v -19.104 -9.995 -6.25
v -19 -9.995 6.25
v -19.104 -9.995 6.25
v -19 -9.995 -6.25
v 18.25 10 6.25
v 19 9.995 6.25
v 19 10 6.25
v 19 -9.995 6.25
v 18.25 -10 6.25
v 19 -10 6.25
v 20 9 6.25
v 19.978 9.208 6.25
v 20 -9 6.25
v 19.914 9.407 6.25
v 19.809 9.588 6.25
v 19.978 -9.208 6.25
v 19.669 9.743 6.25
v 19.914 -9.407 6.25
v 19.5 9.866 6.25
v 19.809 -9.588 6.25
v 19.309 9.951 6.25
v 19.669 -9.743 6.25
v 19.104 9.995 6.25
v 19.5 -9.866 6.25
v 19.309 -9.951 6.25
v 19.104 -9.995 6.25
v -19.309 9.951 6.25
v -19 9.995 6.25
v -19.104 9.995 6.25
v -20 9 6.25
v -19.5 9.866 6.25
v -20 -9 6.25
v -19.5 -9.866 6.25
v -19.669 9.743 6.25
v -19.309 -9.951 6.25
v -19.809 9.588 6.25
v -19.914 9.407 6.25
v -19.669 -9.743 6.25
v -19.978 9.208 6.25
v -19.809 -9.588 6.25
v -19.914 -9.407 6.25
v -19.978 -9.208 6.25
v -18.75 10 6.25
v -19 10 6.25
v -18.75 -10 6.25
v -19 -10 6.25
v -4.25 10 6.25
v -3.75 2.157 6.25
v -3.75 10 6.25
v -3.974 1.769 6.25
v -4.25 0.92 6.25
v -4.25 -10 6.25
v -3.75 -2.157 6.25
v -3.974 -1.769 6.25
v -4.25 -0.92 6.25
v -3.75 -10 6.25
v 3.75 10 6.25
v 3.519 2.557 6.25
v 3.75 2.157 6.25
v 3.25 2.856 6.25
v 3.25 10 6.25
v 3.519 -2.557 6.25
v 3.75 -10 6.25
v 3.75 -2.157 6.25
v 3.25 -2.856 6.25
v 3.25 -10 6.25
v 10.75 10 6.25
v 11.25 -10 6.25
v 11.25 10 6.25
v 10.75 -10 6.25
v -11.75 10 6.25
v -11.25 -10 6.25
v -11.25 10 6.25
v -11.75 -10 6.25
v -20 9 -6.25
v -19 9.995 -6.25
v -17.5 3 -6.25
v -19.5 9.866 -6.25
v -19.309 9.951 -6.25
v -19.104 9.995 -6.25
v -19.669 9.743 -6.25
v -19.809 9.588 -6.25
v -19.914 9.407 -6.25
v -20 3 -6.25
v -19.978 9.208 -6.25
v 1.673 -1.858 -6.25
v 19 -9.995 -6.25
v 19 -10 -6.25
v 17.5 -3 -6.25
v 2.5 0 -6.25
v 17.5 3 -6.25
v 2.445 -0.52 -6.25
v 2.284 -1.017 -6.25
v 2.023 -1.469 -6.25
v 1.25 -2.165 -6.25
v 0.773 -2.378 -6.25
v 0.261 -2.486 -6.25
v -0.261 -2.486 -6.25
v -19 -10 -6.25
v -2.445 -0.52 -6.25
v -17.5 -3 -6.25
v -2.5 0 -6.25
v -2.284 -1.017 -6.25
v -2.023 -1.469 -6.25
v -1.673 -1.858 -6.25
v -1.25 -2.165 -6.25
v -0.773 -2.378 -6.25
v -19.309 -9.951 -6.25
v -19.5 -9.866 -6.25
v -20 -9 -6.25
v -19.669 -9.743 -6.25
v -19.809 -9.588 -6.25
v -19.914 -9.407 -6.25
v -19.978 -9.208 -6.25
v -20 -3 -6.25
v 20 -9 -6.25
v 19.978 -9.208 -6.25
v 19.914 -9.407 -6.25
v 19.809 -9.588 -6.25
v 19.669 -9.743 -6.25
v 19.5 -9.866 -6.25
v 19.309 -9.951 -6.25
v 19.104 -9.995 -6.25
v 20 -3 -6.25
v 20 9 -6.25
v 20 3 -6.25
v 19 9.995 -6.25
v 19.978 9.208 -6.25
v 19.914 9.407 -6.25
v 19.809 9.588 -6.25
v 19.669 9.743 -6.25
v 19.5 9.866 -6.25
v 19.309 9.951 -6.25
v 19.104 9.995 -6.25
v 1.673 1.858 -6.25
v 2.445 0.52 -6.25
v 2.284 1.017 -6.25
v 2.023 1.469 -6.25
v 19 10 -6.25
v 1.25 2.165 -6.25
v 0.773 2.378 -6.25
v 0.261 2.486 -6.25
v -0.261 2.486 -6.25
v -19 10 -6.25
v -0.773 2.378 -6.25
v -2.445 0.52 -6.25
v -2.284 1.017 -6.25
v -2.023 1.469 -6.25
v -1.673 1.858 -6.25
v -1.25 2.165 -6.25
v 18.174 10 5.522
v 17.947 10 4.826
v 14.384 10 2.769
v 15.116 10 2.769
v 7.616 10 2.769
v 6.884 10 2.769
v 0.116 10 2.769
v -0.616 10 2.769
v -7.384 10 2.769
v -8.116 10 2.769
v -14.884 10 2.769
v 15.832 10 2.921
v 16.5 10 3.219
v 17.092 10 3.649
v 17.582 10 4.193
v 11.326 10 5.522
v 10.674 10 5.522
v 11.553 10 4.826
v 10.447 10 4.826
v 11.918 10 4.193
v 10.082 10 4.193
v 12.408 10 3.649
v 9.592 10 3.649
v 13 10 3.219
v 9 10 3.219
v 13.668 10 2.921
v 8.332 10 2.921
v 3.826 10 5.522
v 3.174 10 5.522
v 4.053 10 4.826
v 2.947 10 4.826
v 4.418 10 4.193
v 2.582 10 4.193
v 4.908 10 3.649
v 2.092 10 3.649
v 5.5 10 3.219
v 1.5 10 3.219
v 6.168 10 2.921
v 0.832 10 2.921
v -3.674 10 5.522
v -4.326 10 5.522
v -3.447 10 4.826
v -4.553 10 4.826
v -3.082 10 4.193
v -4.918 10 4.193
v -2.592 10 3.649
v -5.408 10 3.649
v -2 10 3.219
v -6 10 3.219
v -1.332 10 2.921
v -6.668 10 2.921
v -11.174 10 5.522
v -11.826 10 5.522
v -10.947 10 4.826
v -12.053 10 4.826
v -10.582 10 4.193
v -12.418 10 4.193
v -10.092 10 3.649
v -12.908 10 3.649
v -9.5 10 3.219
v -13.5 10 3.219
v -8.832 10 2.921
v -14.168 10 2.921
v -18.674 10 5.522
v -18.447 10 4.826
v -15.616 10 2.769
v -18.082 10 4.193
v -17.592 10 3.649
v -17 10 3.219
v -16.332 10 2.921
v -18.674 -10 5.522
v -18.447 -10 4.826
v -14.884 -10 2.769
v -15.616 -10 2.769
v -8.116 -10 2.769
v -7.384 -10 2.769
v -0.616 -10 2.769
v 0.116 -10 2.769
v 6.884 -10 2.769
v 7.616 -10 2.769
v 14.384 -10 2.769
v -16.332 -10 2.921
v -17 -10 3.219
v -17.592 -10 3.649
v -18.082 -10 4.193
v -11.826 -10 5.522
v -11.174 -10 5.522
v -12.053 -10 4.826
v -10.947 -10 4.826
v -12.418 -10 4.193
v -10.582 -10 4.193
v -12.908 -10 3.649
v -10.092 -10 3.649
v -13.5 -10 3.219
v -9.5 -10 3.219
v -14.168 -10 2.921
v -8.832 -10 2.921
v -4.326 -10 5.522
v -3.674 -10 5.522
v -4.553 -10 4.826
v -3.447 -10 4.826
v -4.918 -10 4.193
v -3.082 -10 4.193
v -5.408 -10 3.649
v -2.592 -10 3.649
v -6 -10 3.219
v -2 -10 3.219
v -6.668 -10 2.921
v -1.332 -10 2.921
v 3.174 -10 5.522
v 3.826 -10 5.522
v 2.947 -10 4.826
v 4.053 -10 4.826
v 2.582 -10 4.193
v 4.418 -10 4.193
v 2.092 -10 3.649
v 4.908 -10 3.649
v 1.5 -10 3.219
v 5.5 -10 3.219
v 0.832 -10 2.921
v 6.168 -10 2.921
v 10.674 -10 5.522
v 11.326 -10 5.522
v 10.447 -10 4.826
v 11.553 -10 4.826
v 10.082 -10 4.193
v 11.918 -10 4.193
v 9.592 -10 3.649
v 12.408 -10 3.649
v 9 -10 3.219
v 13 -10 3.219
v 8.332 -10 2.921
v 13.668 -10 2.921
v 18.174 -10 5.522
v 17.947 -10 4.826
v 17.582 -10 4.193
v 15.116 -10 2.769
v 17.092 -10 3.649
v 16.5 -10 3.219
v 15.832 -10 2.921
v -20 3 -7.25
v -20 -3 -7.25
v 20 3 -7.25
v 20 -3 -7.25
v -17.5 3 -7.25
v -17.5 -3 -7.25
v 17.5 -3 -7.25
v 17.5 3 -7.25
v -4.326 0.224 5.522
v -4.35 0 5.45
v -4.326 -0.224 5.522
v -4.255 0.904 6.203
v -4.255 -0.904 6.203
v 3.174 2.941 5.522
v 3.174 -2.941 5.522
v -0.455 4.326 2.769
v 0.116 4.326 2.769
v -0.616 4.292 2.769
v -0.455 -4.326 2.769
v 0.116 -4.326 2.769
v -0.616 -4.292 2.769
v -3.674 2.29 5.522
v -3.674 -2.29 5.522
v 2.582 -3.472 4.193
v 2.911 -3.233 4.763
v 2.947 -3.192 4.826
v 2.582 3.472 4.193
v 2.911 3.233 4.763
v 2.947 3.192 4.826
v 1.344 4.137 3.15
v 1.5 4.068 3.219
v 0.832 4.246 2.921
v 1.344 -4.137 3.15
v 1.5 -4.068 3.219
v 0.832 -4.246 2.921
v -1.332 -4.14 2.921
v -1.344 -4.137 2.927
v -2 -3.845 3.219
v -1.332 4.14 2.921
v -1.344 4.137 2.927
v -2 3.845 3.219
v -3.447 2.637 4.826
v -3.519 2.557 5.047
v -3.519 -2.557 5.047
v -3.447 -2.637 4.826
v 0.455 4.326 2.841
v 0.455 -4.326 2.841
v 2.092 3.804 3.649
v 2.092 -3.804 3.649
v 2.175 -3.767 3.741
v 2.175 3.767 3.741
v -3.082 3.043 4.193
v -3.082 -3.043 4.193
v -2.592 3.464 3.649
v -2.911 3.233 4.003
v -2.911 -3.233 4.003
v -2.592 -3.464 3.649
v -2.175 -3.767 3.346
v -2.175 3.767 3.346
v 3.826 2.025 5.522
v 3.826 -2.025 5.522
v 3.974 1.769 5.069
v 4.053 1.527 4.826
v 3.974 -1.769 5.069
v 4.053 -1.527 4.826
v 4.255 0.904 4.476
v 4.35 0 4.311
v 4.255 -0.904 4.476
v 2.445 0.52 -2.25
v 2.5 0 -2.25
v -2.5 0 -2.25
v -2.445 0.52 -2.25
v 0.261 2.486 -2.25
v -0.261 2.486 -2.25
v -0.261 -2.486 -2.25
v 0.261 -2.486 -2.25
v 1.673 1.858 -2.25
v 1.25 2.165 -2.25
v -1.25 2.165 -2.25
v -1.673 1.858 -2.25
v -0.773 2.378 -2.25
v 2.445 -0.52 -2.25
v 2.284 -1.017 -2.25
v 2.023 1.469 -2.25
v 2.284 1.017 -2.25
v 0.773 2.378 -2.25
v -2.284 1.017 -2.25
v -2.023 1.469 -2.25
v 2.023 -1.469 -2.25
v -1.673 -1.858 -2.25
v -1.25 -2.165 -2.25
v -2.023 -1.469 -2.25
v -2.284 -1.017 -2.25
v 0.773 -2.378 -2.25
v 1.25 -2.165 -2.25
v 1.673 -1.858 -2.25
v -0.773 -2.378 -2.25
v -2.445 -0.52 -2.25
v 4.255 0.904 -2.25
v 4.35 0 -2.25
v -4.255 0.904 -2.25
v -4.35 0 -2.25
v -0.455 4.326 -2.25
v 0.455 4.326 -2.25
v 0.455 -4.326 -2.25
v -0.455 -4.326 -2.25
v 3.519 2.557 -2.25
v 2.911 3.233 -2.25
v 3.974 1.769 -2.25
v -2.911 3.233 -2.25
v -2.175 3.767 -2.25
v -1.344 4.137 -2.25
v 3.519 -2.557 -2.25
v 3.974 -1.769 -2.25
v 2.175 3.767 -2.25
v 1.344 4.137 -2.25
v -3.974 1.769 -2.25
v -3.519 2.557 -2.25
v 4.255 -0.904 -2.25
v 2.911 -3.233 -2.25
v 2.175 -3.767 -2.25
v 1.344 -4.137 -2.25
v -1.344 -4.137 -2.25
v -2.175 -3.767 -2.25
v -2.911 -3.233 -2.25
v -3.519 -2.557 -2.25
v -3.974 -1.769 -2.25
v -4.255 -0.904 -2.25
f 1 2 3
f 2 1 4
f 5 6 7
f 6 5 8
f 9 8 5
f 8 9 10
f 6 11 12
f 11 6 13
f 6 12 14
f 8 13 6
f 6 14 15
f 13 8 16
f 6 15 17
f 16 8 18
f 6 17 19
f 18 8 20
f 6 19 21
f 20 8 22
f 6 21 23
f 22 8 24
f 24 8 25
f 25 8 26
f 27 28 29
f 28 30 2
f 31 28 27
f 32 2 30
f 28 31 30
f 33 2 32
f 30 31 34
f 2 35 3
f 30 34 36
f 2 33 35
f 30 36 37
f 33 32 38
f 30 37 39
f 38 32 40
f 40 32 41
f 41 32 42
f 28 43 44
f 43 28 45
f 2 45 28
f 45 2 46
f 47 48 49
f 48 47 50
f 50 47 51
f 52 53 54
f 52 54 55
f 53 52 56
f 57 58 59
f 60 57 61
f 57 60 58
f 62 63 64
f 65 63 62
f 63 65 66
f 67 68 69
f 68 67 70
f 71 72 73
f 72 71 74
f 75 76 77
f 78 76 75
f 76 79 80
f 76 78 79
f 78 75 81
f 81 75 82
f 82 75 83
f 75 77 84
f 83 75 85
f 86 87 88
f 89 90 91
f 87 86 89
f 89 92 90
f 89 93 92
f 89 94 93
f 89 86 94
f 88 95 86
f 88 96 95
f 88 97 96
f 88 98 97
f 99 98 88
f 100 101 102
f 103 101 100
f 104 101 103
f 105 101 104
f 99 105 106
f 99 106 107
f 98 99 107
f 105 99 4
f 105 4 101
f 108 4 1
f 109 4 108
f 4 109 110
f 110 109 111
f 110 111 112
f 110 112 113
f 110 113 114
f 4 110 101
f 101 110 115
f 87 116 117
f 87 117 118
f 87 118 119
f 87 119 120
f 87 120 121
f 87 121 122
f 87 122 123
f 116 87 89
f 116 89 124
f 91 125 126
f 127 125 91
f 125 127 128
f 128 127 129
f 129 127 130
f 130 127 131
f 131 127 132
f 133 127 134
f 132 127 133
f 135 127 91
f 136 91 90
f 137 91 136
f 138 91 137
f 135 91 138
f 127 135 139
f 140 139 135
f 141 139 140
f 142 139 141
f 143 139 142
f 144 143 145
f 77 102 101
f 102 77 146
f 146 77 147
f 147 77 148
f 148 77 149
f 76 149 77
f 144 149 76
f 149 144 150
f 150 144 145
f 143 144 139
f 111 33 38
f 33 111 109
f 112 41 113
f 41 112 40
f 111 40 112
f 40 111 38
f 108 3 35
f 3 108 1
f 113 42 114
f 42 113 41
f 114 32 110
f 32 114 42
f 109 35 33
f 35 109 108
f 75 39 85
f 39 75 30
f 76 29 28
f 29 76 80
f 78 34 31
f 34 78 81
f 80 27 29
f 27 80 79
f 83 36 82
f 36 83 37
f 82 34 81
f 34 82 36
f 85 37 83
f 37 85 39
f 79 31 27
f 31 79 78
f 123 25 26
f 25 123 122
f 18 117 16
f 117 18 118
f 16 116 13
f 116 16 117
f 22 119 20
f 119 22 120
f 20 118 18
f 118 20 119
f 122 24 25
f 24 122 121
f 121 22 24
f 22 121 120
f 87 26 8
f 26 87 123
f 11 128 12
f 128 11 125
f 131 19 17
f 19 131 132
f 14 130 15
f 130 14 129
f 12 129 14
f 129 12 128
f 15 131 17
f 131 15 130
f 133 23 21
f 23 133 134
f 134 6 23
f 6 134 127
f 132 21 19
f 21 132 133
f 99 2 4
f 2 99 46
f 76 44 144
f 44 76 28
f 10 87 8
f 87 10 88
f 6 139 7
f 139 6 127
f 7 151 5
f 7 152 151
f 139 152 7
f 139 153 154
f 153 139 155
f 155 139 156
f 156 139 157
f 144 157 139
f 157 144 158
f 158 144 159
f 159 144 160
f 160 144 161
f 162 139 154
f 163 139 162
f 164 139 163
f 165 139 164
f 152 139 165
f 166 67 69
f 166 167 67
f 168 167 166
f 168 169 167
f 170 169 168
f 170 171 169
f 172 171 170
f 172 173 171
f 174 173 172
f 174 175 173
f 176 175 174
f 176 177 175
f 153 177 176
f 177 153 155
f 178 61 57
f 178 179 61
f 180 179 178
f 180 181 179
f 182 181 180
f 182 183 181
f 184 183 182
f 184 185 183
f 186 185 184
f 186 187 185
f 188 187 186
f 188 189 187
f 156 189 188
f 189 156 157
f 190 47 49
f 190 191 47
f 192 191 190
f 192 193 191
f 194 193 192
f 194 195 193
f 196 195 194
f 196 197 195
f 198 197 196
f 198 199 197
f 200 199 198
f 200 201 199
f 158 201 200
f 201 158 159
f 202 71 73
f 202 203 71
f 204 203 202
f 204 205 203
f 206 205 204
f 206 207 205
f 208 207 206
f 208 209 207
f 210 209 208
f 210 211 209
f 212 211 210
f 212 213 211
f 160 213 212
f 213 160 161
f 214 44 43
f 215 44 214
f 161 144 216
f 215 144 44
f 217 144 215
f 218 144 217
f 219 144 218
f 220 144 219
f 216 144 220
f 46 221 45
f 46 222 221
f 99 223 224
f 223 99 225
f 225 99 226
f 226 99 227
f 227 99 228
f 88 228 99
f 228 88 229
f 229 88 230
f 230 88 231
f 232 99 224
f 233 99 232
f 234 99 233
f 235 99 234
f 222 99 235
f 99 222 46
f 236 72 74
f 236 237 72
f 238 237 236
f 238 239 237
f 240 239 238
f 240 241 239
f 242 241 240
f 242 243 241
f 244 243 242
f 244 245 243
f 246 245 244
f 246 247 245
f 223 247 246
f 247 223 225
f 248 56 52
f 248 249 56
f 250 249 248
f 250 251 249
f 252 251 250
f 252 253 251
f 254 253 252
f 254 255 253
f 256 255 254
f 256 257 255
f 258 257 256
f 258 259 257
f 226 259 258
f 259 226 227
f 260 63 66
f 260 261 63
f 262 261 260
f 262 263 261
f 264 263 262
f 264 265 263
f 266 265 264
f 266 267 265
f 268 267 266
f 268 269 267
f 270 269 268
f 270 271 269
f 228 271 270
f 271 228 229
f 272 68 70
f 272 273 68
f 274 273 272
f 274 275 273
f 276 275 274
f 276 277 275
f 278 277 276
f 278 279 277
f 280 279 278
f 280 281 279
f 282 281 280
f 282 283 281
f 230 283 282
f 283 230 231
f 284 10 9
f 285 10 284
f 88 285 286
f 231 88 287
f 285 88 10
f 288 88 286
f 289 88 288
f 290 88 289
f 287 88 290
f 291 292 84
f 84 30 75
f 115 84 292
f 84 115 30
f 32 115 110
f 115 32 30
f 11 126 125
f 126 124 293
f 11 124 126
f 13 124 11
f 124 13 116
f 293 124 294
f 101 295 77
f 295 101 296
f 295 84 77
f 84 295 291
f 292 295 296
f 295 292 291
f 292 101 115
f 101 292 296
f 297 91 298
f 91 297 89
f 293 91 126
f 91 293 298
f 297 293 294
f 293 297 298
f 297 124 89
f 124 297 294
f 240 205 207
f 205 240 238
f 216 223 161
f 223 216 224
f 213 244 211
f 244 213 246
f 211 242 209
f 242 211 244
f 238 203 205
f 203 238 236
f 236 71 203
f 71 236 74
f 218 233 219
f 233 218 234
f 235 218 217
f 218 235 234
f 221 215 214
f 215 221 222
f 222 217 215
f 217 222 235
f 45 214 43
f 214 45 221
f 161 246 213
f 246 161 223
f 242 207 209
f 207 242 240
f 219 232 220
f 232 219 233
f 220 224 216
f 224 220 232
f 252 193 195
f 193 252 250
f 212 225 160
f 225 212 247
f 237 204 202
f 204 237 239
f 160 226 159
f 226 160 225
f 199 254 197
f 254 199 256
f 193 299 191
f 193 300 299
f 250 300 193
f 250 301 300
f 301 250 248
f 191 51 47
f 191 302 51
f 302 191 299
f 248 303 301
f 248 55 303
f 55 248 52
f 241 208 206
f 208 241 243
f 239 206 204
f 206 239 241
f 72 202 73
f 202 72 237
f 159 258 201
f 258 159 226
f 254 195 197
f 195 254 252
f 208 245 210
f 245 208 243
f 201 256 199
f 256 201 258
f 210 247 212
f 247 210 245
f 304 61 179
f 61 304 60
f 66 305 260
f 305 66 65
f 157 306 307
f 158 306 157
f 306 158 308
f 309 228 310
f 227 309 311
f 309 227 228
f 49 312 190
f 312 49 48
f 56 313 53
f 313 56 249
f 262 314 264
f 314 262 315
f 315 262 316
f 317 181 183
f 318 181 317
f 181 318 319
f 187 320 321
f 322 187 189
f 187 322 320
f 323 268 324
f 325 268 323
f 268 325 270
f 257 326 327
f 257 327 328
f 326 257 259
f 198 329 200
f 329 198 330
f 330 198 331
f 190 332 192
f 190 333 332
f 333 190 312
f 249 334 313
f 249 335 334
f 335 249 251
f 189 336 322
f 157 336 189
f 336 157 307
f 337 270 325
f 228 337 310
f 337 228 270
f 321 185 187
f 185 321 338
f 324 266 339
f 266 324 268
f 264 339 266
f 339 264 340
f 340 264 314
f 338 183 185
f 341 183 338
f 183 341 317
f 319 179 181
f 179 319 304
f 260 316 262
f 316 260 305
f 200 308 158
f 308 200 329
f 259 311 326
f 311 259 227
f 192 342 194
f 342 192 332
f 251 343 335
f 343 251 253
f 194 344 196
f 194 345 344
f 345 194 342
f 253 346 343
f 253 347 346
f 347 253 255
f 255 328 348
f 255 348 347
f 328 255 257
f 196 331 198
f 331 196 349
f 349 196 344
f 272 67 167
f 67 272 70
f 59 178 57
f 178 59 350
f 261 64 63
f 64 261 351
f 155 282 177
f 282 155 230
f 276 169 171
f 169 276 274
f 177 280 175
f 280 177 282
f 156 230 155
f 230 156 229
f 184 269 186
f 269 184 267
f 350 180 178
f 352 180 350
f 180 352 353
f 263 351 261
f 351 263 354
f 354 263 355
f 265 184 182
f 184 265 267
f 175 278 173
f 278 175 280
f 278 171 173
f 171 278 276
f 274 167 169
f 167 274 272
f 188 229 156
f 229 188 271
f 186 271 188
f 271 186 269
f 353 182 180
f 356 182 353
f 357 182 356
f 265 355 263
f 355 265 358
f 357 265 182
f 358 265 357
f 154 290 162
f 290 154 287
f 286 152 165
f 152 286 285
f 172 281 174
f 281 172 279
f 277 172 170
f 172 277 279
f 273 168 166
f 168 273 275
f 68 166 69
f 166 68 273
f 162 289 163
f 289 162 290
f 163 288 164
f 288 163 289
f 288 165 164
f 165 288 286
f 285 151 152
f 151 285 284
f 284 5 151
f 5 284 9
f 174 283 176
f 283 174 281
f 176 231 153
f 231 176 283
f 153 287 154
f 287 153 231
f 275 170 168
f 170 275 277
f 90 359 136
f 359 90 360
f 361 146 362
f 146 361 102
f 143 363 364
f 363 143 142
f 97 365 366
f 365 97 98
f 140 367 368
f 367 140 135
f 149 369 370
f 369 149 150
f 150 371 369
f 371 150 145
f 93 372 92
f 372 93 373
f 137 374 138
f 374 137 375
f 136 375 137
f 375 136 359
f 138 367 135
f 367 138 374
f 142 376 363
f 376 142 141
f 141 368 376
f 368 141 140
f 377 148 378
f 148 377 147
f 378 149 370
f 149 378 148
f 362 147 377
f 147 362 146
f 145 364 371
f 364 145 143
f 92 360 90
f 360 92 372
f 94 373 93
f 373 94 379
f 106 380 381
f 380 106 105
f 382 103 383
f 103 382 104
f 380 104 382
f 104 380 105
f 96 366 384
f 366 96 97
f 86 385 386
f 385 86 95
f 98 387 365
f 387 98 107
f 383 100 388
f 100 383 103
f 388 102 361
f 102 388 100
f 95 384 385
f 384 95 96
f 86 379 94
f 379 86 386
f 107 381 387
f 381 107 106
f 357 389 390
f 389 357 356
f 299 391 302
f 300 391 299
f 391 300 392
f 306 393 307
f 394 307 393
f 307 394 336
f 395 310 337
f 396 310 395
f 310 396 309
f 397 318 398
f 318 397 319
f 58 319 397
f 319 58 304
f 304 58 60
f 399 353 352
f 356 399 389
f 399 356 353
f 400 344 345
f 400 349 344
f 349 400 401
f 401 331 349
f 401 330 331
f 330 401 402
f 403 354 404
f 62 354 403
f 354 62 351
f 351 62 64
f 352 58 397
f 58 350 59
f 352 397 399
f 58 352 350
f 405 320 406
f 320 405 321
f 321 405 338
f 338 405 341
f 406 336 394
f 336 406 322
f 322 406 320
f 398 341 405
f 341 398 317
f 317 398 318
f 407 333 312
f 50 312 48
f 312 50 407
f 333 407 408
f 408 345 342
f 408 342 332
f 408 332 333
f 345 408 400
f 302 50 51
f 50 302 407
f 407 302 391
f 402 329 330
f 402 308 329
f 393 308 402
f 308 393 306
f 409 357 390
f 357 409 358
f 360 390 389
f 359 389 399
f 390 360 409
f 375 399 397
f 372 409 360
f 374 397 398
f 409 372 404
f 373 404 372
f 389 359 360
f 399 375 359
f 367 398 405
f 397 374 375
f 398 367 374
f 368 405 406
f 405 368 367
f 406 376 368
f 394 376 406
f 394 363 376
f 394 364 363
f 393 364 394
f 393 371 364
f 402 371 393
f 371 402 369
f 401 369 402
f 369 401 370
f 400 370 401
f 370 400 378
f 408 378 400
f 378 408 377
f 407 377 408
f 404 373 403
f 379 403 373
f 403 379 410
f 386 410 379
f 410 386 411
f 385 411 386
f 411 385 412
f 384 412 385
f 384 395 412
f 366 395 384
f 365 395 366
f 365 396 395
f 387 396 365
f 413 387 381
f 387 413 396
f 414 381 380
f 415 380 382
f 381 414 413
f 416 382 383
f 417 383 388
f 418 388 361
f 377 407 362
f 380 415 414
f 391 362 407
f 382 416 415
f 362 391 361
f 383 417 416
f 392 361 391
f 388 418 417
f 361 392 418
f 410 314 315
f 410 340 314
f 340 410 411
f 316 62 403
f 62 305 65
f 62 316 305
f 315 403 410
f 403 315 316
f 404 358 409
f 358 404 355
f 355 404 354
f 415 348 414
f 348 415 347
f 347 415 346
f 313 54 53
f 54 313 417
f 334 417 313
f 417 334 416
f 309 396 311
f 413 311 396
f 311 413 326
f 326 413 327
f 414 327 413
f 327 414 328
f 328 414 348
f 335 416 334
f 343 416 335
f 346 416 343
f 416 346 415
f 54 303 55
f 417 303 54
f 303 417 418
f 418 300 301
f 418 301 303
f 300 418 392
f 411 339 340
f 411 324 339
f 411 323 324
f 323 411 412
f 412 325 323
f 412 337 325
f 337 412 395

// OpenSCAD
// Filament spool crossbar holder for Nite's Palette & Filament frame
// 4 of these are used
// Based on Mitsui 2020 series extrusion
// (c) 2019 Nitehawk

// Parameters
// Block width
blockw = 20; // 2020 / 2040 rail - single slot
// Block Height
blockl = 40; // Doesn't have to be this long, but this gives a bit of 

// Filament holder rod diameter
rodd = 7;   // (7mm diameter for 608ZZ (8x22x7) bearings)
// Spacing between rods
rodspc = .5;

// Mounting hole - M5 default
// Length of screw
mountscrewlen = 10; // This adjusts how thick the bottom of the mount is
// Diameter of screw
mountscrewd = 5;
// diameter of screw cap
mountcapd = 8.7;
// height of screw cap
mountcaph = 5;

// Extrusion info - Mitsui 
// Depth of extrusion channel (Mitsui 2020)
escrewlen = 6; // max length screw can go into the channel
// Width of extrusion slot (Mitsui 2020)
eslotw = 6; // Width of slot - We'll add a small positioning aid


// Include some MCAD stuff
include <MCAD/boxes.scad>;

// Figure out our total height
blockh = mountscrewlen - escrewlen + mountcaph + (rodd/2);
blockbaset = mountscrewlen - escrewlen + mountcaph;

// Positioning aid stuff - Max 2.5 mm each
ph = min(escrewlen, 1);
// Screw uses mountcapd + 2
pl = min((blockl-mountcapd-2), 5)/2;
assert(pl >= .25);

// How many slots will fit
nslots = floor(blockl / (rodd + rodspc));
slotaoff=(blockl-(nslots*(rodd+rodspc)))/2;
echo("Slots:", nslots, slotaoff, nslots*(rodd+rodspc));

// Smooth curves
$fn=30;

// Buildup the object
difference() {
    union () {
        // Starting block
        roundedBox([blockl, blockw, blockh],1, true);
        // Positioning aids
        translate([-(blockl/2), -(eslotw/2), -(blockh/2)-ph])
            cube([pl, eslotw, ph]);
        translate([+(blockl/2)-pl, -(eslotw/2), -(blockh/2)-ph])
            cube([pl, eslotw, ph]);
    }
    // Screw hole - Center of block
    cylinder(d=mountscrewd, h=blockh, center=true);
    translate([0,0,blockbaset-mountcaph])
        cylinder(d=mountcapd, h=blockh, center=true);
    
    // Line of positions for the rod
    slotbot=-blockh/2 + blockbaset + rodd/2;
    echo(blockh, slotbot);
    for (a = [1:nslots]) {
        pos = -(blockl/2) + slotaoff + (a-1)*(rodd+rodspc)+rodd/2;
        translate([pos,0,slotbot]) rotate([90,0,0]) 
            cylinder(d=rodd, h=blockw, center=true);
    }
}
